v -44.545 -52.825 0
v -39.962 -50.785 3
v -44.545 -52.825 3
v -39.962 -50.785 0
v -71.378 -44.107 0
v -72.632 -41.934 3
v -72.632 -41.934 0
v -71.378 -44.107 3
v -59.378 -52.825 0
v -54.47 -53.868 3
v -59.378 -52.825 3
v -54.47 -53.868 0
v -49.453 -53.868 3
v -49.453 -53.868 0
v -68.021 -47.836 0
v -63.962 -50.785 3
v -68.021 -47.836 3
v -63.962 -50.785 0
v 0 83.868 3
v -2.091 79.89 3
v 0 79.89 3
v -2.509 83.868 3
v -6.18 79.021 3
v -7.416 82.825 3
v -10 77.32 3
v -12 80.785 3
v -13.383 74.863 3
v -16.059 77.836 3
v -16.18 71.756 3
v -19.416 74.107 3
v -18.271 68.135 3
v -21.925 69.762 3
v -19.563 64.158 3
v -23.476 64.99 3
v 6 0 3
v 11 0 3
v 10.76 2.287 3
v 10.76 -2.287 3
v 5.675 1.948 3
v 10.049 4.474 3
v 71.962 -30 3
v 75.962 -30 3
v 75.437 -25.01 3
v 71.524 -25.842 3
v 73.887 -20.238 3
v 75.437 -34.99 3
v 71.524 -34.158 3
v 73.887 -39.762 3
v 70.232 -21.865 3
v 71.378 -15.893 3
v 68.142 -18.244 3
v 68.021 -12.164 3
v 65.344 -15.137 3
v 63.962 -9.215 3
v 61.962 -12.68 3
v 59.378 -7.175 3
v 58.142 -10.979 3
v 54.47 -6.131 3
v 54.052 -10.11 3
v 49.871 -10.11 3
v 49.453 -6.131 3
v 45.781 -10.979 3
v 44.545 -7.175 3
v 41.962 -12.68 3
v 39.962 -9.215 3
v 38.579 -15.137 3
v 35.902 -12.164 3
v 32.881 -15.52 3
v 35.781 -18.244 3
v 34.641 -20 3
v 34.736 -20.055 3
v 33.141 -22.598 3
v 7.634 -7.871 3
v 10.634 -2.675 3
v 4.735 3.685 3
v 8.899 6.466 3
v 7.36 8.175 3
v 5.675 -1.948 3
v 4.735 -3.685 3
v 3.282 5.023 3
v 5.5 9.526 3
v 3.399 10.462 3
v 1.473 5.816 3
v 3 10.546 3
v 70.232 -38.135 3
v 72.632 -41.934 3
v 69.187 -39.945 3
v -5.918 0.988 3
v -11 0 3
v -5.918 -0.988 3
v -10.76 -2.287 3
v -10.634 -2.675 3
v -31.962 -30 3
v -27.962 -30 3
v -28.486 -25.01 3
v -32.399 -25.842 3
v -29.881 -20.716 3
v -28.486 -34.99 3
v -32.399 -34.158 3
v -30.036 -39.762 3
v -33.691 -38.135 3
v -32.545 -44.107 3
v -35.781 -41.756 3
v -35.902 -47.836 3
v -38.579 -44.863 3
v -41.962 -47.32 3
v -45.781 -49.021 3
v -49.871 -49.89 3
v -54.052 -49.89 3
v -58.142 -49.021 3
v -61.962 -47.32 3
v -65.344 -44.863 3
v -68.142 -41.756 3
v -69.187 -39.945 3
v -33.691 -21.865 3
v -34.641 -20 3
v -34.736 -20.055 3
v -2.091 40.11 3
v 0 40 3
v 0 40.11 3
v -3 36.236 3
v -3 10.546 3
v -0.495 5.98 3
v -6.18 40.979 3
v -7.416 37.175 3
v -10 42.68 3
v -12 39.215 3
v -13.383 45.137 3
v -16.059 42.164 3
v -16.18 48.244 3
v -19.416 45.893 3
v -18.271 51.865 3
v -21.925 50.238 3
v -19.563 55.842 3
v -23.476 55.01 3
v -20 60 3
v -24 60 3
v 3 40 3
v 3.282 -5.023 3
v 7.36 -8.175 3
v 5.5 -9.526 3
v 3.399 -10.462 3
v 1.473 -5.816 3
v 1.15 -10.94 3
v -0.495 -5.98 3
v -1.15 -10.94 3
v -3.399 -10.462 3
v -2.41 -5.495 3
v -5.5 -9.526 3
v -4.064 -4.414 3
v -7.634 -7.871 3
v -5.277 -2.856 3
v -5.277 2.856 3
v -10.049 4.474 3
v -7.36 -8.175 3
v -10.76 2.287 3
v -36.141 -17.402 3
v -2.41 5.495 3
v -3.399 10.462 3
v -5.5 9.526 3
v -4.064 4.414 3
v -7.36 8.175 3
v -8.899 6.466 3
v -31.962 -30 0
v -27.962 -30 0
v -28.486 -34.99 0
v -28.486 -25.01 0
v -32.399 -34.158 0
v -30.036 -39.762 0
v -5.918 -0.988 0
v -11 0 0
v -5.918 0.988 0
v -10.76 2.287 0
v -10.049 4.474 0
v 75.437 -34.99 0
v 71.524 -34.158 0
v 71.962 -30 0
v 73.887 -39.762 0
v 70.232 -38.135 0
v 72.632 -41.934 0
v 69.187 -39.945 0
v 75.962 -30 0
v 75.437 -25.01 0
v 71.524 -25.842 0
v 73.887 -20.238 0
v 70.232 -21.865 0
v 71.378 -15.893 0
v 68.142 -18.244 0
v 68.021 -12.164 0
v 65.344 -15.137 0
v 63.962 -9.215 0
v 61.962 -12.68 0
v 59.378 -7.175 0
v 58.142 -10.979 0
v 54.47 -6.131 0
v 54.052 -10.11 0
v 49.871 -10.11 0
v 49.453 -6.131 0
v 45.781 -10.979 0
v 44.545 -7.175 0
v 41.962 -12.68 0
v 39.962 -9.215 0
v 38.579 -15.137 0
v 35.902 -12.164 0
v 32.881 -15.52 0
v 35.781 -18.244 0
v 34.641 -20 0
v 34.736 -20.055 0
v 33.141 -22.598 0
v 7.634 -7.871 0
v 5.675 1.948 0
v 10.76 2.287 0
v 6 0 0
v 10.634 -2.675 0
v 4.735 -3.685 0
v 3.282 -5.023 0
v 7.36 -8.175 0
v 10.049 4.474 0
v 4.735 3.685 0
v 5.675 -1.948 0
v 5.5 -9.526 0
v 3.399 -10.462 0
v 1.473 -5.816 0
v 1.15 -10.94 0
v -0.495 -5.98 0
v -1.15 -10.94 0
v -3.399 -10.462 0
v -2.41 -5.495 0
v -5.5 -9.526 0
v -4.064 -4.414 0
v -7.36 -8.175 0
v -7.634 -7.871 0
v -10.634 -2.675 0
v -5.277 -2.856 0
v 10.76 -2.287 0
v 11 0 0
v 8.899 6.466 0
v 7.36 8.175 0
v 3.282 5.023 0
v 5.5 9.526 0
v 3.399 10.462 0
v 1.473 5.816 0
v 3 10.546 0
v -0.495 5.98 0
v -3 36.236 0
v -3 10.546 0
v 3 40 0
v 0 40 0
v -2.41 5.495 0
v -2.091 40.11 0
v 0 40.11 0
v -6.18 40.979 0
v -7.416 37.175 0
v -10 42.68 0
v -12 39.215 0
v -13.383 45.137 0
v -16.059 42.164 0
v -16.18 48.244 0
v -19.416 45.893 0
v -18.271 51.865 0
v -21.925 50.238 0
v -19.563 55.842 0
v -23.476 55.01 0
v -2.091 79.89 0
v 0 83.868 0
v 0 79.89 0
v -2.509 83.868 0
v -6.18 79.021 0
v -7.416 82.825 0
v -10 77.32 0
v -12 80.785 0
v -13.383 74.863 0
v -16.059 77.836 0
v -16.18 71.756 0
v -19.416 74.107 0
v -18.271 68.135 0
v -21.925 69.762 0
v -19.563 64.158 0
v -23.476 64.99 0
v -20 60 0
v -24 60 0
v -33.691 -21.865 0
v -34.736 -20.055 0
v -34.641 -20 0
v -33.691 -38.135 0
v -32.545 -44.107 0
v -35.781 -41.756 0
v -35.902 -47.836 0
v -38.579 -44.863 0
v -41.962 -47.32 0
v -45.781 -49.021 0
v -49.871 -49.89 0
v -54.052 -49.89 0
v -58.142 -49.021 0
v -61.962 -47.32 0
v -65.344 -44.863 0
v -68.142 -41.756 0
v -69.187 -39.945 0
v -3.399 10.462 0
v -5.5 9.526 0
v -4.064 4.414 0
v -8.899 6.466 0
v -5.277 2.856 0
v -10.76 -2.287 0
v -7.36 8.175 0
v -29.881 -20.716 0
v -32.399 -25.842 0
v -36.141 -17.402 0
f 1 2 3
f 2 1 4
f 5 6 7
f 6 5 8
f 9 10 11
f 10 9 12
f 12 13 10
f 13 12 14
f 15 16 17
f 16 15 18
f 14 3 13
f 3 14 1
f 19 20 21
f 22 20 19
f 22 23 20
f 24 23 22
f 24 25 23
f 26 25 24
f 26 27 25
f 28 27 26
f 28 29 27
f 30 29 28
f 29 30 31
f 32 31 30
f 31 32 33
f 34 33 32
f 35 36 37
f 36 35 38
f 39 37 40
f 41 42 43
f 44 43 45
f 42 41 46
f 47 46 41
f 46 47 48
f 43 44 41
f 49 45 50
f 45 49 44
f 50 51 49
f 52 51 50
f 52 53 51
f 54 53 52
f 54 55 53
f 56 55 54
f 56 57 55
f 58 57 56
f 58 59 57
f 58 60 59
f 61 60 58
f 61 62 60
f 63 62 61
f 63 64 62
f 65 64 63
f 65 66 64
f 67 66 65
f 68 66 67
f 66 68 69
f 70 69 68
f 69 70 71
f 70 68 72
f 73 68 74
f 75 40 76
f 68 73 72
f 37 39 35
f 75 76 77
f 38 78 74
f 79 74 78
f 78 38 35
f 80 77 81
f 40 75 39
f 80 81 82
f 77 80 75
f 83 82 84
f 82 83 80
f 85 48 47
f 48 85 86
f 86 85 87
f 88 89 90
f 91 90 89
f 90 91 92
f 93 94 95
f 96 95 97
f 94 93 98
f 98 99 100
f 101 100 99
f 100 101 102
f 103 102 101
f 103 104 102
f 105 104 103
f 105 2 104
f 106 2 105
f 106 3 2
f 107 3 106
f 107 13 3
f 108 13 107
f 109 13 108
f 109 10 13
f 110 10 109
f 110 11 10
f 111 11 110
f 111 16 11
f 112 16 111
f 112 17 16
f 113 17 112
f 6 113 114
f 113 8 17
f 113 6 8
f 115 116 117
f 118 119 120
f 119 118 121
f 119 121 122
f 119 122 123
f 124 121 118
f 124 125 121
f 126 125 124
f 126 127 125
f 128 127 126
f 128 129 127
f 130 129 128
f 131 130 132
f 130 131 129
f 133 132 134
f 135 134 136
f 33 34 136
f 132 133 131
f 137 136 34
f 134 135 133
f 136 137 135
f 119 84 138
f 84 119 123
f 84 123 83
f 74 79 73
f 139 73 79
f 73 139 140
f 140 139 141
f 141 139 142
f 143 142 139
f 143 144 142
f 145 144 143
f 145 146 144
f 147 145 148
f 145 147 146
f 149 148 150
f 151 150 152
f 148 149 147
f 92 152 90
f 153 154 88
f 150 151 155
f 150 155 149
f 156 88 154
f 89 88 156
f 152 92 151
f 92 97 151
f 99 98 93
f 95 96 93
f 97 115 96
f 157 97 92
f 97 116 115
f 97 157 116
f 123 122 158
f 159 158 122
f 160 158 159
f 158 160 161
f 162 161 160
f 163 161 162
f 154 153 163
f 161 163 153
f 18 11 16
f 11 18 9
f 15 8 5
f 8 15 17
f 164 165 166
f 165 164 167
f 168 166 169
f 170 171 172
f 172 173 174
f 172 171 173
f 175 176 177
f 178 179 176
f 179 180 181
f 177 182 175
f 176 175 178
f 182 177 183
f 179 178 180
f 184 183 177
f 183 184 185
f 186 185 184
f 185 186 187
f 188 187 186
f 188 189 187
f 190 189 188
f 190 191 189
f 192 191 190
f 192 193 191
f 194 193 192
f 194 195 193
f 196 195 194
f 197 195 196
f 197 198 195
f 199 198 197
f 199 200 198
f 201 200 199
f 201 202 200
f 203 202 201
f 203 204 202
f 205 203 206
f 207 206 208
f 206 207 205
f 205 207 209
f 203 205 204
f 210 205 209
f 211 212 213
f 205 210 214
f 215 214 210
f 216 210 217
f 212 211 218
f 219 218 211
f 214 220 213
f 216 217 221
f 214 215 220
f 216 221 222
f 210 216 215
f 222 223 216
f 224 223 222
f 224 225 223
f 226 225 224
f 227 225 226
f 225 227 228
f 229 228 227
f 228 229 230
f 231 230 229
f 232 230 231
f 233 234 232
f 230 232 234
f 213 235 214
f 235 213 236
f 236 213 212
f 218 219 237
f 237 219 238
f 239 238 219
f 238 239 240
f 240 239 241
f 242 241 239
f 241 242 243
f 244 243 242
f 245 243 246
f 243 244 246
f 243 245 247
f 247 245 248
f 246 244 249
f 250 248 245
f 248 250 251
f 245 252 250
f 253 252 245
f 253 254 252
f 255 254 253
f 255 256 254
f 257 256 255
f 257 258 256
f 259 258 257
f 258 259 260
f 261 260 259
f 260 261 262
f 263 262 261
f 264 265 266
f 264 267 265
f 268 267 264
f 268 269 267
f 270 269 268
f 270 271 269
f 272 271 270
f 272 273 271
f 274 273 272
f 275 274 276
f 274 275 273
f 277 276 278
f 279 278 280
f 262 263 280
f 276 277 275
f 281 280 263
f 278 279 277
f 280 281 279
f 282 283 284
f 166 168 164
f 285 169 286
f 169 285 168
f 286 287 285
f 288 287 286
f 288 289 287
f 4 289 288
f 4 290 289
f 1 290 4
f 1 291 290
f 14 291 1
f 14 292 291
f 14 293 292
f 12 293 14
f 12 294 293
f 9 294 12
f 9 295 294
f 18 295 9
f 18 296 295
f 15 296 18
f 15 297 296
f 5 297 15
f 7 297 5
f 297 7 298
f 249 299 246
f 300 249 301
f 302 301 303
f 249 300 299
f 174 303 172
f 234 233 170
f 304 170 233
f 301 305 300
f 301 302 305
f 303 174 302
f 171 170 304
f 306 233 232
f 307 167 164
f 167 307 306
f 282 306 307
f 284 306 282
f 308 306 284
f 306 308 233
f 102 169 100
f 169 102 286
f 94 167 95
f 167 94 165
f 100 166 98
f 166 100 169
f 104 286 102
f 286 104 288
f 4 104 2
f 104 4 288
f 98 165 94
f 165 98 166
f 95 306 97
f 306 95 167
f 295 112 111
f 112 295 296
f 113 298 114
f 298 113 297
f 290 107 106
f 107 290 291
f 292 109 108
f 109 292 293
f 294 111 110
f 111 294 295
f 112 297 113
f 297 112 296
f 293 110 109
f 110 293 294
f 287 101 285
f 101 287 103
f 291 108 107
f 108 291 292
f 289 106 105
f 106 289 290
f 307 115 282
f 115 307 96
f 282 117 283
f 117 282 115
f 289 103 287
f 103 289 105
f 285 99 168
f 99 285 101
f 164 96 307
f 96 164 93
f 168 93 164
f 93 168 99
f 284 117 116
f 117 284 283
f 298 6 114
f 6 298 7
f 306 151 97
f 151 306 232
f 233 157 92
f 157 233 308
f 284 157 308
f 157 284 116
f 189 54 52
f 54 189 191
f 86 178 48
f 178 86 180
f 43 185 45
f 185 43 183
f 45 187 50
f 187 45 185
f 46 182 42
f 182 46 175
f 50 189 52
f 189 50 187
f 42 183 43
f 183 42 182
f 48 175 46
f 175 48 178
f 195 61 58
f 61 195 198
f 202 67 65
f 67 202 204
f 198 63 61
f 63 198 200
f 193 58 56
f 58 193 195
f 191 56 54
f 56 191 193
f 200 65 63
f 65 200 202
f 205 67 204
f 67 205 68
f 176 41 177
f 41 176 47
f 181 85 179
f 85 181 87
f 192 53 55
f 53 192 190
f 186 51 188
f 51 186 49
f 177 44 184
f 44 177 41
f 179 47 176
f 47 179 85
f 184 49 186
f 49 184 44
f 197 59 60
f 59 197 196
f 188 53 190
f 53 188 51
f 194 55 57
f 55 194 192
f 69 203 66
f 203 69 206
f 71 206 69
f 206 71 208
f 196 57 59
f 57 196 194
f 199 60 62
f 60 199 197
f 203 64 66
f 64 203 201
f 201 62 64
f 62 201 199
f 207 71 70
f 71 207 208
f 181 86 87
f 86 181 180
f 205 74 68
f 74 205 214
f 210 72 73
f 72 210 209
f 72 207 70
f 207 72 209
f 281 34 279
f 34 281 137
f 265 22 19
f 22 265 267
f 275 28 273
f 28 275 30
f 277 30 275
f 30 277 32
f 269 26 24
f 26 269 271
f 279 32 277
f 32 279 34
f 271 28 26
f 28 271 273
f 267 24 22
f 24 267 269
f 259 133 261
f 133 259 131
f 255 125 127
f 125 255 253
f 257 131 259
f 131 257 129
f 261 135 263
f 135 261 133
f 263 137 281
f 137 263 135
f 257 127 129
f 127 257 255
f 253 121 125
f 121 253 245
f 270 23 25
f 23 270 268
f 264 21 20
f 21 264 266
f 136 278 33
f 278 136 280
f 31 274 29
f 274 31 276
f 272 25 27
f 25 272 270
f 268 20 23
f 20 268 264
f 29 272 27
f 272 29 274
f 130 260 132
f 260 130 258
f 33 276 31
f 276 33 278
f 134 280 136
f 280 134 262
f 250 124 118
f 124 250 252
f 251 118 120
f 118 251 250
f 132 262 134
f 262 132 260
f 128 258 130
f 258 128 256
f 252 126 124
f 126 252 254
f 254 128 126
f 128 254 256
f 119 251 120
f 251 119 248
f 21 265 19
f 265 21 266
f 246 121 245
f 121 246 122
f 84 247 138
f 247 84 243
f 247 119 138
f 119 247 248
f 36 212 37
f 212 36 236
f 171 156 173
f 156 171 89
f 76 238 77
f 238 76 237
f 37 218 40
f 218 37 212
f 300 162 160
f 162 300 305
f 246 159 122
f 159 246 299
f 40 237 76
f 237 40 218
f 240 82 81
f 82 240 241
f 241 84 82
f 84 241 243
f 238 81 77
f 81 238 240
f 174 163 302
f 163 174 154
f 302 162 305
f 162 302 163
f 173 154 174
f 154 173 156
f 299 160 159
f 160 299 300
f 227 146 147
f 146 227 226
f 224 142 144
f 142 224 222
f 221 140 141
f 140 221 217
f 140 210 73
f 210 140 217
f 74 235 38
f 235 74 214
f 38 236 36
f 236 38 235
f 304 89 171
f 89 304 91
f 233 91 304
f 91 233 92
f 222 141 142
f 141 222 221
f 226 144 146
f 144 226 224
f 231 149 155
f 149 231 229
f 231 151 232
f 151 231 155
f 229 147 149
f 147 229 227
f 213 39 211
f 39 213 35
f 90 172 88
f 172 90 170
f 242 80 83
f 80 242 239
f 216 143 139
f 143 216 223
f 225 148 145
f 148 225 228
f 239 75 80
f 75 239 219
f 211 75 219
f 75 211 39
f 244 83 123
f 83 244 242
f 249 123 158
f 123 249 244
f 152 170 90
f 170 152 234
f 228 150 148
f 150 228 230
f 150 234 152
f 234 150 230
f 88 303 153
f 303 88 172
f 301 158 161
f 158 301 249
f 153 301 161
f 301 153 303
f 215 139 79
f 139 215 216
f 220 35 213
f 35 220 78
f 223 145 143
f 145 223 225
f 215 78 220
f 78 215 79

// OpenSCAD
// All units are in millimeters
ball_diameter = 20;
axle_diameter = 6;

module arm(height, width, length) {
    margin = (width/3)*2;
    cube([width, length, height]);
    
    translate([width/2, length+ball_diameter, 0]) 
    difference() {
        cylinder(h=height,r1=ball_diameter+margin,r2=ball_diameter+margin);
        cylinder(h=height,r1=ball_diameter,r2=ball_diameter);    
        translate([0, -(ball_diameter+margin), 0])
        cube([ball_diameter+margin, (ball_diameter+margin)*2, height]);
    }
}


module part(arm_height, arm_width, arm_length, arm_count) {
    margin = 5;
    difference() {
    union() {
        for(arm=[1:1:arm_count]) {
            mul = 360 / arm_count;
            rotate(a=[0, 0, arm*mul]) 
                translate([-arm_width/2, 0, 0])
                arm(height=arm_height, width=arm_width, length=arm_length);
        }
        cylinder(h=arm_height,r1=arm_width+margin,r2=arm_width+margin);
    }
    cylinder(h=arm_height,r1=axle_diameter,r2=axle_diameter);
    }
}

part(arm_height = 3, arm_width = 6, arm_length = ball_diameter*2, arm_count = 3);
